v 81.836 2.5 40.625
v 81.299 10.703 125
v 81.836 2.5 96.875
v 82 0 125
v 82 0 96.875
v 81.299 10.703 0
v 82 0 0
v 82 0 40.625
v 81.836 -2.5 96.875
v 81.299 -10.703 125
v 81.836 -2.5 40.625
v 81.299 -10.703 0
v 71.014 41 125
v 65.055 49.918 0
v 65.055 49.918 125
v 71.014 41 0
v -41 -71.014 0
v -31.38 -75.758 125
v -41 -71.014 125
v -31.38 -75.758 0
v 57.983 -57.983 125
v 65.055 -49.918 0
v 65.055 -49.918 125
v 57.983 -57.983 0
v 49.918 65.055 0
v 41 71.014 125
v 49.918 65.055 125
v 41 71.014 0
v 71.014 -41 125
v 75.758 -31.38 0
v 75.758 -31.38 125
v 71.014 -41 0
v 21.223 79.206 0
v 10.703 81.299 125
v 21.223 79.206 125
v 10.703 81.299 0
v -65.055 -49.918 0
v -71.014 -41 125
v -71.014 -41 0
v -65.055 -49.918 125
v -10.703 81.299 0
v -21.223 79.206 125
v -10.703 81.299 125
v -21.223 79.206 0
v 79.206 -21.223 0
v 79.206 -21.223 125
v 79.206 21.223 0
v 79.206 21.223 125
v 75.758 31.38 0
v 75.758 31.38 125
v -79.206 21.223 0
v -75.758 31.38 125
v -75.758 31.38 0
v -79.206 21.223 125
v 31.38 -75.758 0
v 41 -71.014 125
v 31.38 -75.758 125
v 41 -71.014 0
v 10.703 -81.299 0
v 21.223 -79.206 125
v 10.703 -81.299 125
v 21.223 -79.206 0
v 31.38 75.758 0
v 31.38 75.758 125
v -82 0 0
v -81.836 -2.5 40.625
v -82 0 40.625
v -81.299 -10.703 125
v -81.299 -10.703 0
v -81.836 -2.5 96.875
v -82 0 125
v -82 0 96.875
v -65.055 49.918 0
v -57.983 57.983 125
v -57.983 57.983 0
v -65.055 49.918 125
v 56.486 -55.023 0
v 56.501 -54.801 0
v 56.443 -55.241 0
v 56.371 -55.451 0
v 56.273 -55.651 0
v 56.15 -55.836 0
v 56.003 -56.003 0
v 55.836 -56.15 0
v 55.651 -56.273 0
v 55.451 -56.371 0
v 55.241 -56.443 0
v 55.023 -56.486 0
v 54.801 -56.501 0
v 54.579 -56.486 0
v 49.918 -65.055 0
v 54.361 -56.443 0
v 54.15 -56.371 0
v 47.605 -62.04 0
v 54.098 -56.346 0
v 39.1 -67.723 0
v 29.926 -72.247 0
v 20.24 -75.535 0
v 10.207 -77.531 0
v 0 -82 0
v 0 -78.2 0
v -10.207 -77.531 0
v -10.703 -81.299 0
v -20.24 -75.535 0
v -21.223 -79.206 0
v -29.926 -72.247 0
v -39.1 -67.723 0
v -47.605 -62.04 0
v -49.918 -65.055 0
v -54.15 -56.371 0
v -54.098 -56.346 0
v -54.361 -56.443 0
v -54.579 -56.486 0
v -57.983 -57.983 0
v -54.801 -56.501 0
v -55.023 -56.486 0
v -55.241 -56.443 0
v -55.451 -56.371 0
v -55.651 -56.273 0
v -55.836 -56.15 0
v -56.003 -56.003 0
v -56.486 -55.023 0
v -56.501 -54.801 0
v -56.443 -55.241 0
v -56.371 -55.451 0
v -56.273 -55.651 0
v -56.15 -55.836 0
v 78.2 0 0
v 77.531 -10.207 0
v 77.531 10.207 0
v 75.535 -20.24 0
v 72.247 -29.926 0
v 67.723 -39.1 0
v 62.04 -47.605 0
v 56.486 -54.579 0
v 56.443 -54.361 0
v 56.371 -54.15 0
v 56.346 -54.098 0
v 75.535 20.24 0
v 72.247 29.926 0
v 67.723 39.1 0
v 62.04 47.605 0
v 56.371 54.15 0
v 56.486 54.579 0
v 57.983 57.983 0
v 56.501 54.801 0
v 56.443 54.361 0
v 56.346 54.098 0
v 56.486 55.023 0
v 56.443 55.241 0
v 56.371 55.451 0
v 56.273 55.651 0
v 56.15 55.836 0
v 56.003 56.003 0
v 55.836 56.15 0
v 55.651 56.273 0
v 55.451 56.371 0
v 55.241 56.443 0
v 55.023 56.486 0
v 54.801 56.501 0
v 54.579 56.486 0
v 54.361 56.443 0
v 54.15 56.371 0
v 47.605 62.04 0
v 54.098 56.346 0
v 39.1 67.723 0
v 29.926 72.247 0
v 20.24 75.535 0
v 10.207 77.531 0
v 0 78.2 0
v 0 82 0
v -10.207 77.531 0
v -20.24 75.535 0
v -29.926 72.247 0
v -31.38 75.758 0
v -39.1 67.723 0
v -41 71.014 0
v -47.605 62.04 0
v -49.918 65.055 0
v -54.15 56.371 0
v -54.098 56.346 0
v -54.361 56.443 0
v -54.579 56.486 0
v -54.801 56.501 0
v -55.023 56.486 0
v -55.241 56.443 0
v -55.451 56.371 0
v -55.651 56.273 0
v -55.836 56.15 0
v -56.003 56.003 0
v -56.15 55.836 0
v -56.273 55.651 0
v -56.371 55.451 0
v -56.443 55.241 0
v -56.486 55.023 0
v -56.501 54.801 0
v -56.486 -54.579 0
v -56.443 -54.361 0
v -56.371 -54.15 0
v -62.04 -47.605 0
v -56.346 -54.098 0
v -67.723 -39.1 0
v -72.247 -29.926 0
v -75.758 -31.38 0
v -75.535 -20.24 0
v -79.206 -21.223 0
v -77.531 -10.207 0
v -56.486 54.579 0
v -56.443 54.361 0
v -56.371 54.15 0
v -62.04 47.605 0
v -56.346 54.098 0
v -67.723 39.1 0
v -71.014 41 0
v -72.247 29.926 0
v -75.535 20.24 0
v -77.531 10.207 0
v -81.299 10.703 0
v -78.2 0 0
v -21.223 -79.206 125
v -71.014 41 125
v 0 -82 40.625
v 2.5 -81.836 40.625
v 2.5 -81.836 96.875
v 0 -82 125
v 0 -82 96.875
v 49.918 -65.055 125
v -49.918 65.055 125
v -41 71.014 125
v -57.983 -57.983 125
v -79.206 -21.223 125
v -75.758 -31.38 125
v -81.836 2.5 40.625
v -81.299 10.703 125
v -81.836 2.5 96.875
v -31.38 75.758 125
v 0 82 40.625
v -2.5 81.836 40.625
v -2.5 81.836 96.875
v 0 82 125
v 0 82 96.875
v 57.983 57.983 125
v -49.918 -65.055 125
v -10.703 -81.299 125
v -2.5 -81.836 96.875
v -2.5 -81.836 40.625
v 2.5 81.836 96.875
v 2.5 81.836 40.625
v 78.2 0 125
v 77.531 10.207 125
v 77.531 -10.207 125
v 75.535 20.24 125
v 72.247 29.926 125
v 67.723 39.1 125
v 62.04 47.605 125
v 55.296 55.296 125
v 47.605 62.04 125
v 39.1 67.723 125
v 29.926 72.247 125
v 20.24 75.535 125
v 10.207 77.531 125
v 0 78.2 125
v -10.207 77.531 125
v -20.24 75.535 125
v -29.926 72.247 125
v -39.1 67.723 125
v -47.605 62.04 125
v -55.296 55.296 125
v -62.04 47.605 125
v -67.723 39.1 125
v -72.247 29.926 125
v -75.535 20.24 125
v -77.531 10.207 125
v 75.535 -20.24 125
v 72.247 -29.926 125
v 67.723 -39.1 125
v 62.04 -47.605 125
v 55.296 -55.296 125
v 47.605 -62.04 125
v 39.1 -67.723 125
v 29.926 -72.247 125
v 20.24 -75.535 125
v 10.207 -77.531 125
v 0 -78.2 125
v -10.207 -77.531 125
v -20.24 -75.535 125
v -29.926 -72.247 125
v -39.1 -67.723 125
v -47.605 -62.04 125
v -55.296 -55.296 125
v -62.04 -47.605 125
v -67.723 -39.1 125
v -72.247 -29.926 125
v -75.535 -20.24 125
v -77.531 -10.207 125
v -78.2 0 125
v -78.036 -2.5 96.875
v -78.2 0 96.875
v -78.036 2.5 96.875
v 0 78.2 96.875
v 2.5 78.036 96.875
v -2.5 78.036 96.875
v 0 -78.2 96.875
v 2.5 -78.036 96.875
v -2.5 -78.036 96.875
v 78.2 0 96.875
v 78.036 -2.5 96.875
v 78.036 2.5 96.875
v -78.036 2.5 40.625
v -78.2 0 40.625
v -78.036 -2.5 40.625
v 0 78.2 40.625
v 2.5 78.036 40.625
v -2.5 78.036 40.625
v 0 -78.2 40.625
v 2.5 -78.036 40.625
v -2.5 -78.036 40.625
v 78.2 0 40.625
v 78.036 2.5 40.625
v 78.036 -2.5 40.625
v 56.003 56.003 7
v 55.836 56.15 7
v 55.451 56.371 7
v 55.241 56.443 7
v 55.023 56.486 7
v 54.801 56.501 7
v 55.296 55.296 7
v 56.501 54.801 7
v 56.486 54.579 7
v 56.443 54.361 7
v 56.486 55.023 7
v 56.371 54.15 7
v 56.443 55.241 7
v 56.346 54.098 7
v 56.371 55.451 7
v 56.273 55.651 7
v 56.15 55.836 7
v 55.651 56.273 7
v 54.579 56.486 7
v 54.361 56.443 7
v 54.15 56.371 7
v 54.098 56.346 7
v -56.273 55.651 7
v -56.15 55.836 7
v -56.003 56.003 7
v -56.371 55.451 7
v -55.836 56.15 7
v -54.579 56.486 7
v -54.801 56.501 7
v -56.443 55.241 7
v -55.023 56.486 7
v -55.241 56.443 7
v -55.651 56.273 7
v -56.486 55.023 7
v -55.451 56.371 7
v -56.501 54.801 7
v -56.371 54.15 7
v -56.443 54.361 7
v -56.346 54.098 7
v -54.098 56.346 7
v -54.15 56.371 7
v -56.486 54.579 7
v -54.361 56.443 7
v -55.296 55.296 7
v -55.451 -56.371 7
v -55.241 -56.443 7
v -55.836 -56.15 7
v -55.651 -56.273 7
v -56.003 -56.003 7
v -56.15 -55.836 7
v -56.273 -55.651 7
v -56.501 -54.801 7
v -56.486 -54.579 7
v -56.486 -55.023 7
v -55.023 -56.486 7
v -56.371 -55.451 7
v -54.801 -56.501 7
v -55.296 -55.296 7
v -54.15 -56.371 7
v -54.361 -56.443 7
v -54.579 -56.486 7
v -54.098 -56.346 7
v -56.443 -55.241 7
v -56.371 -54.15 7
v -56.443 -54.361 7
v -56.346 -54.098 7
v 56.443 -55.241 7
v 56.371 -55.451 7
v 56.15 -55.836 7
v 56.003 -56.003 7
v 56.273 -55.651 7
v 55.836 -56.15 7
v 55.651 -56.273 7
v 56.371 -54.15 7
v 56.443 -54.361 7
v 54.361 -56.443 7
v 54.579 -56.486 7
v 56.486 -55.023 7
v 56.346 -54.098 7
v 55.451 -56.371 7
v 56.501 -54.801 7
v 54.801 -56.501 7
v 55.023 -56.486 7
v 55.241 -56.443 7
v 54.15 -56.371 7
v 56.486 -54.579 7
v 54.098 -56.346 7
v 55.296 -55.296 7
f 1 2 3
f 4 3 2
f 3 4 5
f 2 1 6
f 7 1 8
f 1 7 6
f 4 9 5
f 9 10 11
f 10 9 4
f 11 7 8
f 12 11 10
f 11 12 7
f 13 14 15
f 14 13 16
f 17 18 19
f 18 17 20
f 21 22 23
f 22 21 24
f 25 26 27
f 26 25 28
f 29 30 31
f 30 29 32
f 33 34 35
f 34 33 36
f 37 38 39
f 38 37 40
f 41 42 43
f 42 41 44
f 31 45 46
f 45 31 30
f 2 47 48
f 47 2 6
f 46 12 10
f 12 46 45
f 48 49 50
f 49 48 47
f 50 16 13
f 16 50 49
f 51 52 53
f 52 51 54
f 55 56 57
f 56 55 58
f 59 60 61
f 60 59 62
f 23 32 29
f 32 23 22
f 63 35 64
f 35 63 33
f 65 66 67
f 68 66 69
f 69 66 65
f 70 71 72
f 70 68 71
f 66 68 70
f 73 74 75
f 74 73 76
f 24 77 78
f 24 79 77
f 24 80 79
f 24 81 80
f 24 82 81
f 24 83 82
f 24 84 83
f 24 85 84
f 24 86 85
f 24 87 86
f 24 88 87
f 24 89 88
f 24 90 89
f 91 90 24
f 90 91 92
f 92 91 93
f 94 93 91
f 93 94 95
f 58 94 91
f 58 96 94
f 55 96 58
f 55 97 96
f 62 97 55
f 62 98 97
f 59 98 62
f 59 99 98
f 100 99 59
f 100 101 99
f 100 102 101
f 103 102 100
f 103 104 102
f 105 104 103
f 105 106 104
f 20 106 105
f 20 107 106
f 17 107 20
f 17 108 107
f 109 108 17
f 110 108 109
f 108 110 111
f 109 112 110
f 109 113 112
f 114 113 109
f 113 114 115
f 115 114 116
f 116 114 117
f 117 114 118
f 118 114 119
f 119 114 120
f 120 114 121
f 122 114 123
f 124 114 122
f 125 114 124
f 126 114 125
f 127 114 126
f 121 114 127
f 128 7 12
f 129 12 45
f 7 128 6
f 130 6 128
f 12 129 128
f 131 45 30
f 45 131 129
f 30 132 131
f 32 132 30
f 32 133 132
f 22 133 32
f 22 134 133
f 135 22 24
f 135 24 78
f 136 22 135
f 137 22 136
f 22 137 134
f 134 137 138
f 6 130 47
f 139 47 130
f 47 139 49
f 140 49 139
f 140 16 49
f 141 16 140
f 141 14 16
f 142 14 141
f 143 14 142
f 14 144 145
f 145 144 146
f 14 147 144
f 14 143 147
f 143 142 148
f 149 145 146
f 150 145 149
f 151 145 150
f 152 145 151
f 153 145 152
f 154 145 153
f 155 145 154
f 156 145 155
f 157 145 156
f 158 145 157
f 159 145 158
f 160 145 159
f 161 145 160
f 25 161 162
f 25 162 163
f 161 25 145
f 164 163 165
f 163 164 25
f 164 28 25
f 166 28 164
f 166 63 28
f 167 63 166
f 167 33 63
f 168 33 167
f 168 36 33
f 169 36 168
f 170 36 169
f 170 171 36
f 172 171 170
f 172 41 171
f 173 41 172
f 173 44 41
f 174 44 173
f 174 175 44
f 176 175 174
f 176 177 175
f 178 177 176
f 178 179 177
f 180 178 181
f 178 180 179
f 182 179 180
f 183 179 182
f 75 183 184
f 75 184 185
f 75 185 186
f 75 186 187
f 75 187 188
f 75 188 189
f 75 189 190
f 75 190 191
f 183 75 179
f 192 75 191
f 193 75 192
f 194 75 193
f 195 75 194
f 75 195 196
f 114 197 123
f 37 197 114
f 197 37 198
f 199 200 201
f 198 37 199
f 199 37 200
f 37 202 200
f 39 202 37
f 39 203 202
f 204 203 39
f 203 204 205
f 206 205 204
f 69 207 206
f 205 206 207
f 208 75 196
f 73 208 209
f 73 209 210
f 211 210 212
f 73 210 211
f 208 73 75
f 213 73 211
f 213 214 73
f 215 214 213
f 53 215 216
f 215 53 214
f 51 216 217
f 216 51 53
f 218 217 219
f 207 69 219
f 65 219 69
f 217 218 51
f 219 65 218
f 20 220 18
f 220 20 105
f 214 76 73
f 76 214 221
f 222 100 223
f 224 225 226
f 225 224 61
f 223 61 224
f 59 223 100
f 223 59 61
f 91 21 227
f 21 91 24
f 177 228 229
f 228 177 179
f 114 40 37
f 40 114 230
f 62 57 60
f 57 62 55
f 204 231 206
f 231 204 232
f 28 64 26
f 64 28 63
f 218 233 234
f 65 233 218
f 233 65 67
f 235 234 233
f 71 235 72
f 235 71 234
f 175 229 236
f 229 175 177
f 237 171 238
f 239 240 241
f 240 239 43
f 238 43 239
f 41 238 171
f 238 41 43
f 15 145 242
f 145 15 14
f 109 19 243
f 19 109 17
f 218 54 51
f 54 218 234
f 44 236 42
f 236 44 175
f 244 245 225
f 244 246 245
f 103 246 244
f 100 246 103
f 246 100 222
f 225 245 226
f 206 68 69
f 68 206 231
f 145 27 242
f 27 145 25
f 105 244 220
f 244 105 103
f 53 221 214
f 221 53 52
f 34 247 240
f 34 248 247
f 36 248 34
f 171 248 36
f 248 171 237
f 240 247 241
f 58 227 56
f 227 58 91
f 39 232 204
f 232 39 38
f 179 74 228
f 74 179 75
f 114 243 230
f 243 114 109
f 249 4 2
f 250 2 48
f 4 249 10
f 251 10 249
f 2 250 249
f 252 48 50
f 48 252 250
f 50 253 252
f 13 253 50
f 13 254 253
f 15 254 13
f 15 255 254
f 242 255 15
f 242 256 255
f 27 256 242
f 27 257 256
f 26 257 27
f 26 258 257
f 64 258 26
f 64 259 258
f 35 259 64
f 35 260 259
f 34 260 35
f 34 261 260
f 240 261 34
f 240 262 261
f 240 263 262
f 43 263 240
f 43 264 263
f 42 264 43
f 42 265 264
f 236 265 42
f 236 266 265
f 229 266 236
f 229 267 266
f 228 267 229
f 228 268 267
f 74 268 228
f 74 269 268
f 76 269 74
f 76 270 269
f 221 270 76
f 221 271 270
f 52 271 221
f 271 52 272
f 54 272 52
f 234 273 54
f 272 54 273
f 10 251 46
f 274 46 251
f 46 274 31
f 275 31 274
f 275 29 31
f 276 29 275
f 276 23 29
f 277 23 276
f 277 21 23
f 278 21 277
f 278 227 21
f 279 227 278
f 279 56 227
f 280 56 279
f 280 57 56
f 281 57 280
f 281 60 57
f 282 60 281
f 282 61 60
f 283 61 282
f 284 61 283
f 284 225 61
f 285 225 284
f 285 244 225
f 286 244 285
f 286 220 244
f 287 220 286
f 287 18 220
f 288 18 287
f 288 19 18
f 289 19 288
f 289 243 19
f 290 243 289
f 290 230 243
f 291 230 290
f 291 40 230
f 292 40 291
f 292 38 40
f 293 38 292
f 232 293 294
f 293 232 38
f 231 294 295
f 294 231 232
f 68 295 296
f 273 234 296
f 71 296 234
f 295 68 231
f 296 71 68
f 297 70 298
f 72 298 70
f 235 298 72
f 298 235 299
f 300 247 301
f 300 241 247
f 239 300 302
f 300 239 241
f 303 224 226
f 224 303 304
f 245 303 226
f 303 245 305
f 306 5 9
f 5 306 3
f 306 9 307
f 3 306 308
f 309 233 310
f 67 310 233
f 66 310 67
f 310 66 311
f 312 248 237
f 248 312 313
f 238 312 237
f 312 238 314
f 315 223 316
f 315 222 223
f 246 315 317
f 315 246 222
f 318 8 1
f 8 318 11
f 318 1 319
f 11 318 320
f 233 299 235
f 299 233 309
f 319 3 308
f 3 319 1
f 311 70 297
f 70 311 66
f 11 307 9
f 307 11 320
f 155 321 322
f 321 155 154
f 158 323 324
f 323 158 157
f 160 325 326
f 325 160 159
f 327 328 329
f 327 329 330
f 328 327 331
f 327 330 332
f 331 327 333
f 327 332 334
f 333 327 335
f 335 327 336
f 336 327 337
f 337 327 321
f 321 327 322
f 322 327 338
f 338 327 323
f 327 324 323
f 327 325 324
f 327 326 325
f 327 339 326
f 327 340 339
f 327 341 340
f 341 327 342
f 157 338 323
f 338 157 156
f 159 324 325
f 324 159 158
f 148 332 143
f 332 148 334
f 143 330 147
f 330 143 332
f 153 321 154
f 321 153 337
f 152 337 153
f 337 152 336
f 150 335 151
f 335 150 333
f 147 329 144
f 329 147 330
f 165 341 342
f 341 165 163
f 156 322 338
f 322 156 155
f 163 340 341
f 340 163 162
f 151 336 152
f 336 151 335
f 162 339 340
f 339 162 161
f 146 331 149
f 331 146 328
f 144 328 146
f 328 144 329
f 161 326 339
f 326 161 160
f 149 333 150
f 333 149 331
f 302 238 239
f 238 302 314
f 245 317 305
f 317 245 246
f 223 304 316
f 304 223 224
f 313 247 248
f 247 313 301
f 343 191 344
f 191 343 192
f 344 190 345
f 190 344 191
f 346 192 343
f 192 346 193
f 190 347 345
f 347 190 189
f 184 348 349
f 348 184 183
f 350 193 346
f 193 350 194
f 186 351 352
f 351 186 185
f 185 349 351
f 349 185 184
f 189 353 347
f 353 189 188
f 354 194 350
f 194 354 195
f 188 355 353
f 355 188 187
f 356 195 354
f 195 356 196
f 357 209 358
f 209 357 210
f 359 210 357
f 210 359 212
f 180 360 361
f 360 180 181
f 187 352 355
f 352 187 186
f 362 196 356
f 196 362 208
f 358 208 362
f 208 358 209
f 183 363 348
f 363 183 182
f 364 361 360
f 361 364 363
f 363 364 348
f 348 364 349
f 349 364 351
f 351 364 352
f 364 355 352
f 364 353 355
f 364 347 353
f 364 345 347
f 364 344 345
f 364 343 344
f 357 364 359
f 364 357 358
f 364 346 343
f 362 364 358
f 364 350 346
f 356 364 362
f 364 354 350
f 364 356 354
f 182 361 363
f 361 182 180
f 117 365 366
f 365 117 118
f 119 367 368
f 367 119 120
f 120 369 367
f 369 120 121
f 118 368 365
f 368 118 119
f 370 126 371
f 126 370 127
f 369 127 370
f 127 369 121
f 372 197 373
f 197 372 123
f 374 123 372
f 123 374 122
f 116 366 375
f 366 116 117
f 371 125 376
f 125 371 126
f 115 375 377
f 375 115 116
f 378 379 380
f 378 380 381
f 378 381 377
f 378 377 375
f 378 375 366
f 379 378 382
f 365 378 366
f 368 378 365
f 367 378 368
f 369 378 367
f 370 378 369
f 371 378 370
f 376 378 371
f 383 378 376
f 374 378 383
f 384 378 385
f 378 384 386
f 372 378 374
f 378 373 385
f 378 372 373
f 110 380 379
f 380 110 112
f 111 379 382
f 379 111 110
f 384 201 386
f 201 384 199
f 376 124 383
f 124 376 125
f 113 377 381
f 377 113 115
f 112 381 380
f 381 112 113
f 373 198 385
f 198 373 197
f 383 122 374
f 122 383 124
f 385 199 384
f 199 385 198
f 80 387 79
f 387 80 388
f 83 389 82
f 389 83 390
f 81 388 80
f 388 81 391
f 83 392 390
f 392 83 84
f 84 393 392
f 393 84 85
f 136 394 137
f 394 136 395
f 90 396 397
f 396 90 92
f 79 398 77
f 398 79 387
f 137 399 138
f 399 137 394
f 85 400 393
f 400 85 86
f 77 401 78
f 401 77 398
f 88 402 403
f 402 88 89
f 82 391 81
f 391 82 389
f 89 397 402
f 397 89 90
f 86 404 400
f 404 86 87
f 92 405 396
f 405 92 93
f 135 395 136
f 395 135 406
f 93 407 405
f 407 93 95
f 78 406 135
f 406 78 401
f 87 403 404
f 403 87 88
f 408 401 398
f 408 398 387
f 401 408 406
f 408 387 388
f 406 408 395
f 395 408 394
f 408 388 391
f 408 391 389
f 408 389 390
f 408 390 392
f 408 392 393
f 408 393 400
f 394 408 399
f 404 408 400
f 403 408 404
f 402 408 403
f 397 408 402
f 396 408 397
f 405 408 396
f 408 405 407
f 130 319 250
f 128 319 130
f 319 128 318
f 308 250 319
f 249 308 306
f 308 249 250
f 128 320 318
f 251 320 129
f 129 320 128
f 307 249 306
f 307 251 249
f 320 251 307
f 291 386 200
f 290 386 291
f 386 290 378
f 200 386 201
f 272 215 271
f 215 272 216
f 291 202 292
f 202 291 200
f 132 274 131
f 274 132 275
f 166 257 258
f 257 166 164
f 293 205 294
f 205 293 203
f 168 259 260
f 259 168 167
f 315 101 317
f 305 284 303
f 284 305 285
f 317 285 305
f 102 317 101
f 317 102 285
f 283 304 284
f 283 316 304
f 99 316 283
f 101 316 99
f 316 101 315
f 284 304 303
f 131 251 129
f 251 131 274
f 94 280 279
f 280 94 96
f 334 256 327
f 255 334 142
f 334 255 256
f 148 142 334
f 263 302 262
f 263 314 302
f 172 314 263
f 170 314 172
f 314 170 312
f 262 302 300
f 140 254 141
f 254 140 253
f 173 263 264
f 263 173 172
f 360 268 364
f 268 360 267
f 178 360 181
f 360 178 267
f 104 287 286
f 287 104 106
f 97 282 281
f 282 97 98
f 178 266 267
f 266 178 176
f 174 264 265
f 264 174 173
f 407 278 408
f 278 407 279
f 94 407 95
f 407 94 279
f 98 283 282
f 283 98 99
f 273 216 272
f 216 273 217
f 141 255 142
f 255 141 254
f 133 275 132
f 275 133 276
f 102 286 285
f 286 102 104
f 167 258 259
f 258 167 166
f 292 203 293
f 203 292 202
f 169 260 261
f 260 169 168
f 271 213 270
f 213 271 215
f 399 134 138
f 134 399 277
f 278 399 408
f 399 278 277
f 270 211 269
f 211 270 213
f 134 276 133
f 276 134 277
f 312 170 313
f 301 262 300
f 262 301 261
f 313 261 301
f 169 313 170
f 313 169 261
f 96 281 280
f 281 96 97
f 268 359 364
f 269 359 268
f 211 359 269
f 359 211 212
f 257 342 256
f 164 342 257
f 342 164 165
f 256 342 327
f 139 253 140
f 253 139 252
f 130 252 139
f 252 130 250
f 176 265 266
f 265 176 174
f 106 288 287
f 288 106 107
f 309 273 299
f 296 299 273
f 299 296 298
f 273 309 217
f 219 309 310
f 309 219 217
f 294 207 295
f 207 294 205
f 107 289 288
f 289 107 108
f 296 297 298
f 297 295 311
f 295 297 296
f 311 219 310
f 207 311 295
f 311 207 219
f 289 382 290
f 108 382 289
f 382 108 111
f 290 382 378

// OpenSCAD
// ============================================================================
// Get Me An Alt — Parametric OpenSCAD Module
// Part: PRT-02 — 360° Perforated HEPA Intake Lower Shell (hepa-intake-shell)
// Function: Protects HEPA cartridge and carries upper tower loads.
// Target Bounding Box (mm): [164, 164, 125]
// Print Material: PETG | Min Wall: >= 1.6mm | Tolerance: 0.2mm
// ============================================================================
$fn = 48;
part_width = 164;
part_depth = 164;
part_height = 125;
wall_thickness = 3.6;
floor_thickness = 3.6;
corner_radius = 4;
tolerance = 0.2;
m3_clearance_d = 3.4; // M3 screw clearance hole (3.0mm + 2*0.2mm)

module rounded_rect_prism(w, d, h, r) {
  cr = max(0.5, min(r, min(w, d) / 2 - 0.1));
  linear_extrude(height = h)
    offset(r = cr)
      offset(r = -cr)
        square([w, d], center = true);
}

module part_hepa_intake_shell() {
  difference() {
    union() {
      // Base mounting flange
      cylinder(h = 6, r = 82);
      // Cylindrical isolation collar
      cylinder(h = part_height, r = 82);
    }
    // Central bore with 0.2mm fit tolerance
    translate([0, 0, -1])
      cylinder(h = part_height + 2, r = 78 + tolerance);
    // Side water intake relief slots
    for (ang = [0, 90, 180, 270]) {
      rotate([0, 0, ang])
        translate([0, 0, part_height * 0.55])
          cube([180.4, 5.0, part_height * 0.45], center = true);
      // Flange M3 anchor holes
      rotate([0, 0, ang + 45])
        translate([77.5, 0, -1])
          cylinder(h = 8, d = m3_clearance_d);
    }
  }
}

part_hepa_intake_shell();
